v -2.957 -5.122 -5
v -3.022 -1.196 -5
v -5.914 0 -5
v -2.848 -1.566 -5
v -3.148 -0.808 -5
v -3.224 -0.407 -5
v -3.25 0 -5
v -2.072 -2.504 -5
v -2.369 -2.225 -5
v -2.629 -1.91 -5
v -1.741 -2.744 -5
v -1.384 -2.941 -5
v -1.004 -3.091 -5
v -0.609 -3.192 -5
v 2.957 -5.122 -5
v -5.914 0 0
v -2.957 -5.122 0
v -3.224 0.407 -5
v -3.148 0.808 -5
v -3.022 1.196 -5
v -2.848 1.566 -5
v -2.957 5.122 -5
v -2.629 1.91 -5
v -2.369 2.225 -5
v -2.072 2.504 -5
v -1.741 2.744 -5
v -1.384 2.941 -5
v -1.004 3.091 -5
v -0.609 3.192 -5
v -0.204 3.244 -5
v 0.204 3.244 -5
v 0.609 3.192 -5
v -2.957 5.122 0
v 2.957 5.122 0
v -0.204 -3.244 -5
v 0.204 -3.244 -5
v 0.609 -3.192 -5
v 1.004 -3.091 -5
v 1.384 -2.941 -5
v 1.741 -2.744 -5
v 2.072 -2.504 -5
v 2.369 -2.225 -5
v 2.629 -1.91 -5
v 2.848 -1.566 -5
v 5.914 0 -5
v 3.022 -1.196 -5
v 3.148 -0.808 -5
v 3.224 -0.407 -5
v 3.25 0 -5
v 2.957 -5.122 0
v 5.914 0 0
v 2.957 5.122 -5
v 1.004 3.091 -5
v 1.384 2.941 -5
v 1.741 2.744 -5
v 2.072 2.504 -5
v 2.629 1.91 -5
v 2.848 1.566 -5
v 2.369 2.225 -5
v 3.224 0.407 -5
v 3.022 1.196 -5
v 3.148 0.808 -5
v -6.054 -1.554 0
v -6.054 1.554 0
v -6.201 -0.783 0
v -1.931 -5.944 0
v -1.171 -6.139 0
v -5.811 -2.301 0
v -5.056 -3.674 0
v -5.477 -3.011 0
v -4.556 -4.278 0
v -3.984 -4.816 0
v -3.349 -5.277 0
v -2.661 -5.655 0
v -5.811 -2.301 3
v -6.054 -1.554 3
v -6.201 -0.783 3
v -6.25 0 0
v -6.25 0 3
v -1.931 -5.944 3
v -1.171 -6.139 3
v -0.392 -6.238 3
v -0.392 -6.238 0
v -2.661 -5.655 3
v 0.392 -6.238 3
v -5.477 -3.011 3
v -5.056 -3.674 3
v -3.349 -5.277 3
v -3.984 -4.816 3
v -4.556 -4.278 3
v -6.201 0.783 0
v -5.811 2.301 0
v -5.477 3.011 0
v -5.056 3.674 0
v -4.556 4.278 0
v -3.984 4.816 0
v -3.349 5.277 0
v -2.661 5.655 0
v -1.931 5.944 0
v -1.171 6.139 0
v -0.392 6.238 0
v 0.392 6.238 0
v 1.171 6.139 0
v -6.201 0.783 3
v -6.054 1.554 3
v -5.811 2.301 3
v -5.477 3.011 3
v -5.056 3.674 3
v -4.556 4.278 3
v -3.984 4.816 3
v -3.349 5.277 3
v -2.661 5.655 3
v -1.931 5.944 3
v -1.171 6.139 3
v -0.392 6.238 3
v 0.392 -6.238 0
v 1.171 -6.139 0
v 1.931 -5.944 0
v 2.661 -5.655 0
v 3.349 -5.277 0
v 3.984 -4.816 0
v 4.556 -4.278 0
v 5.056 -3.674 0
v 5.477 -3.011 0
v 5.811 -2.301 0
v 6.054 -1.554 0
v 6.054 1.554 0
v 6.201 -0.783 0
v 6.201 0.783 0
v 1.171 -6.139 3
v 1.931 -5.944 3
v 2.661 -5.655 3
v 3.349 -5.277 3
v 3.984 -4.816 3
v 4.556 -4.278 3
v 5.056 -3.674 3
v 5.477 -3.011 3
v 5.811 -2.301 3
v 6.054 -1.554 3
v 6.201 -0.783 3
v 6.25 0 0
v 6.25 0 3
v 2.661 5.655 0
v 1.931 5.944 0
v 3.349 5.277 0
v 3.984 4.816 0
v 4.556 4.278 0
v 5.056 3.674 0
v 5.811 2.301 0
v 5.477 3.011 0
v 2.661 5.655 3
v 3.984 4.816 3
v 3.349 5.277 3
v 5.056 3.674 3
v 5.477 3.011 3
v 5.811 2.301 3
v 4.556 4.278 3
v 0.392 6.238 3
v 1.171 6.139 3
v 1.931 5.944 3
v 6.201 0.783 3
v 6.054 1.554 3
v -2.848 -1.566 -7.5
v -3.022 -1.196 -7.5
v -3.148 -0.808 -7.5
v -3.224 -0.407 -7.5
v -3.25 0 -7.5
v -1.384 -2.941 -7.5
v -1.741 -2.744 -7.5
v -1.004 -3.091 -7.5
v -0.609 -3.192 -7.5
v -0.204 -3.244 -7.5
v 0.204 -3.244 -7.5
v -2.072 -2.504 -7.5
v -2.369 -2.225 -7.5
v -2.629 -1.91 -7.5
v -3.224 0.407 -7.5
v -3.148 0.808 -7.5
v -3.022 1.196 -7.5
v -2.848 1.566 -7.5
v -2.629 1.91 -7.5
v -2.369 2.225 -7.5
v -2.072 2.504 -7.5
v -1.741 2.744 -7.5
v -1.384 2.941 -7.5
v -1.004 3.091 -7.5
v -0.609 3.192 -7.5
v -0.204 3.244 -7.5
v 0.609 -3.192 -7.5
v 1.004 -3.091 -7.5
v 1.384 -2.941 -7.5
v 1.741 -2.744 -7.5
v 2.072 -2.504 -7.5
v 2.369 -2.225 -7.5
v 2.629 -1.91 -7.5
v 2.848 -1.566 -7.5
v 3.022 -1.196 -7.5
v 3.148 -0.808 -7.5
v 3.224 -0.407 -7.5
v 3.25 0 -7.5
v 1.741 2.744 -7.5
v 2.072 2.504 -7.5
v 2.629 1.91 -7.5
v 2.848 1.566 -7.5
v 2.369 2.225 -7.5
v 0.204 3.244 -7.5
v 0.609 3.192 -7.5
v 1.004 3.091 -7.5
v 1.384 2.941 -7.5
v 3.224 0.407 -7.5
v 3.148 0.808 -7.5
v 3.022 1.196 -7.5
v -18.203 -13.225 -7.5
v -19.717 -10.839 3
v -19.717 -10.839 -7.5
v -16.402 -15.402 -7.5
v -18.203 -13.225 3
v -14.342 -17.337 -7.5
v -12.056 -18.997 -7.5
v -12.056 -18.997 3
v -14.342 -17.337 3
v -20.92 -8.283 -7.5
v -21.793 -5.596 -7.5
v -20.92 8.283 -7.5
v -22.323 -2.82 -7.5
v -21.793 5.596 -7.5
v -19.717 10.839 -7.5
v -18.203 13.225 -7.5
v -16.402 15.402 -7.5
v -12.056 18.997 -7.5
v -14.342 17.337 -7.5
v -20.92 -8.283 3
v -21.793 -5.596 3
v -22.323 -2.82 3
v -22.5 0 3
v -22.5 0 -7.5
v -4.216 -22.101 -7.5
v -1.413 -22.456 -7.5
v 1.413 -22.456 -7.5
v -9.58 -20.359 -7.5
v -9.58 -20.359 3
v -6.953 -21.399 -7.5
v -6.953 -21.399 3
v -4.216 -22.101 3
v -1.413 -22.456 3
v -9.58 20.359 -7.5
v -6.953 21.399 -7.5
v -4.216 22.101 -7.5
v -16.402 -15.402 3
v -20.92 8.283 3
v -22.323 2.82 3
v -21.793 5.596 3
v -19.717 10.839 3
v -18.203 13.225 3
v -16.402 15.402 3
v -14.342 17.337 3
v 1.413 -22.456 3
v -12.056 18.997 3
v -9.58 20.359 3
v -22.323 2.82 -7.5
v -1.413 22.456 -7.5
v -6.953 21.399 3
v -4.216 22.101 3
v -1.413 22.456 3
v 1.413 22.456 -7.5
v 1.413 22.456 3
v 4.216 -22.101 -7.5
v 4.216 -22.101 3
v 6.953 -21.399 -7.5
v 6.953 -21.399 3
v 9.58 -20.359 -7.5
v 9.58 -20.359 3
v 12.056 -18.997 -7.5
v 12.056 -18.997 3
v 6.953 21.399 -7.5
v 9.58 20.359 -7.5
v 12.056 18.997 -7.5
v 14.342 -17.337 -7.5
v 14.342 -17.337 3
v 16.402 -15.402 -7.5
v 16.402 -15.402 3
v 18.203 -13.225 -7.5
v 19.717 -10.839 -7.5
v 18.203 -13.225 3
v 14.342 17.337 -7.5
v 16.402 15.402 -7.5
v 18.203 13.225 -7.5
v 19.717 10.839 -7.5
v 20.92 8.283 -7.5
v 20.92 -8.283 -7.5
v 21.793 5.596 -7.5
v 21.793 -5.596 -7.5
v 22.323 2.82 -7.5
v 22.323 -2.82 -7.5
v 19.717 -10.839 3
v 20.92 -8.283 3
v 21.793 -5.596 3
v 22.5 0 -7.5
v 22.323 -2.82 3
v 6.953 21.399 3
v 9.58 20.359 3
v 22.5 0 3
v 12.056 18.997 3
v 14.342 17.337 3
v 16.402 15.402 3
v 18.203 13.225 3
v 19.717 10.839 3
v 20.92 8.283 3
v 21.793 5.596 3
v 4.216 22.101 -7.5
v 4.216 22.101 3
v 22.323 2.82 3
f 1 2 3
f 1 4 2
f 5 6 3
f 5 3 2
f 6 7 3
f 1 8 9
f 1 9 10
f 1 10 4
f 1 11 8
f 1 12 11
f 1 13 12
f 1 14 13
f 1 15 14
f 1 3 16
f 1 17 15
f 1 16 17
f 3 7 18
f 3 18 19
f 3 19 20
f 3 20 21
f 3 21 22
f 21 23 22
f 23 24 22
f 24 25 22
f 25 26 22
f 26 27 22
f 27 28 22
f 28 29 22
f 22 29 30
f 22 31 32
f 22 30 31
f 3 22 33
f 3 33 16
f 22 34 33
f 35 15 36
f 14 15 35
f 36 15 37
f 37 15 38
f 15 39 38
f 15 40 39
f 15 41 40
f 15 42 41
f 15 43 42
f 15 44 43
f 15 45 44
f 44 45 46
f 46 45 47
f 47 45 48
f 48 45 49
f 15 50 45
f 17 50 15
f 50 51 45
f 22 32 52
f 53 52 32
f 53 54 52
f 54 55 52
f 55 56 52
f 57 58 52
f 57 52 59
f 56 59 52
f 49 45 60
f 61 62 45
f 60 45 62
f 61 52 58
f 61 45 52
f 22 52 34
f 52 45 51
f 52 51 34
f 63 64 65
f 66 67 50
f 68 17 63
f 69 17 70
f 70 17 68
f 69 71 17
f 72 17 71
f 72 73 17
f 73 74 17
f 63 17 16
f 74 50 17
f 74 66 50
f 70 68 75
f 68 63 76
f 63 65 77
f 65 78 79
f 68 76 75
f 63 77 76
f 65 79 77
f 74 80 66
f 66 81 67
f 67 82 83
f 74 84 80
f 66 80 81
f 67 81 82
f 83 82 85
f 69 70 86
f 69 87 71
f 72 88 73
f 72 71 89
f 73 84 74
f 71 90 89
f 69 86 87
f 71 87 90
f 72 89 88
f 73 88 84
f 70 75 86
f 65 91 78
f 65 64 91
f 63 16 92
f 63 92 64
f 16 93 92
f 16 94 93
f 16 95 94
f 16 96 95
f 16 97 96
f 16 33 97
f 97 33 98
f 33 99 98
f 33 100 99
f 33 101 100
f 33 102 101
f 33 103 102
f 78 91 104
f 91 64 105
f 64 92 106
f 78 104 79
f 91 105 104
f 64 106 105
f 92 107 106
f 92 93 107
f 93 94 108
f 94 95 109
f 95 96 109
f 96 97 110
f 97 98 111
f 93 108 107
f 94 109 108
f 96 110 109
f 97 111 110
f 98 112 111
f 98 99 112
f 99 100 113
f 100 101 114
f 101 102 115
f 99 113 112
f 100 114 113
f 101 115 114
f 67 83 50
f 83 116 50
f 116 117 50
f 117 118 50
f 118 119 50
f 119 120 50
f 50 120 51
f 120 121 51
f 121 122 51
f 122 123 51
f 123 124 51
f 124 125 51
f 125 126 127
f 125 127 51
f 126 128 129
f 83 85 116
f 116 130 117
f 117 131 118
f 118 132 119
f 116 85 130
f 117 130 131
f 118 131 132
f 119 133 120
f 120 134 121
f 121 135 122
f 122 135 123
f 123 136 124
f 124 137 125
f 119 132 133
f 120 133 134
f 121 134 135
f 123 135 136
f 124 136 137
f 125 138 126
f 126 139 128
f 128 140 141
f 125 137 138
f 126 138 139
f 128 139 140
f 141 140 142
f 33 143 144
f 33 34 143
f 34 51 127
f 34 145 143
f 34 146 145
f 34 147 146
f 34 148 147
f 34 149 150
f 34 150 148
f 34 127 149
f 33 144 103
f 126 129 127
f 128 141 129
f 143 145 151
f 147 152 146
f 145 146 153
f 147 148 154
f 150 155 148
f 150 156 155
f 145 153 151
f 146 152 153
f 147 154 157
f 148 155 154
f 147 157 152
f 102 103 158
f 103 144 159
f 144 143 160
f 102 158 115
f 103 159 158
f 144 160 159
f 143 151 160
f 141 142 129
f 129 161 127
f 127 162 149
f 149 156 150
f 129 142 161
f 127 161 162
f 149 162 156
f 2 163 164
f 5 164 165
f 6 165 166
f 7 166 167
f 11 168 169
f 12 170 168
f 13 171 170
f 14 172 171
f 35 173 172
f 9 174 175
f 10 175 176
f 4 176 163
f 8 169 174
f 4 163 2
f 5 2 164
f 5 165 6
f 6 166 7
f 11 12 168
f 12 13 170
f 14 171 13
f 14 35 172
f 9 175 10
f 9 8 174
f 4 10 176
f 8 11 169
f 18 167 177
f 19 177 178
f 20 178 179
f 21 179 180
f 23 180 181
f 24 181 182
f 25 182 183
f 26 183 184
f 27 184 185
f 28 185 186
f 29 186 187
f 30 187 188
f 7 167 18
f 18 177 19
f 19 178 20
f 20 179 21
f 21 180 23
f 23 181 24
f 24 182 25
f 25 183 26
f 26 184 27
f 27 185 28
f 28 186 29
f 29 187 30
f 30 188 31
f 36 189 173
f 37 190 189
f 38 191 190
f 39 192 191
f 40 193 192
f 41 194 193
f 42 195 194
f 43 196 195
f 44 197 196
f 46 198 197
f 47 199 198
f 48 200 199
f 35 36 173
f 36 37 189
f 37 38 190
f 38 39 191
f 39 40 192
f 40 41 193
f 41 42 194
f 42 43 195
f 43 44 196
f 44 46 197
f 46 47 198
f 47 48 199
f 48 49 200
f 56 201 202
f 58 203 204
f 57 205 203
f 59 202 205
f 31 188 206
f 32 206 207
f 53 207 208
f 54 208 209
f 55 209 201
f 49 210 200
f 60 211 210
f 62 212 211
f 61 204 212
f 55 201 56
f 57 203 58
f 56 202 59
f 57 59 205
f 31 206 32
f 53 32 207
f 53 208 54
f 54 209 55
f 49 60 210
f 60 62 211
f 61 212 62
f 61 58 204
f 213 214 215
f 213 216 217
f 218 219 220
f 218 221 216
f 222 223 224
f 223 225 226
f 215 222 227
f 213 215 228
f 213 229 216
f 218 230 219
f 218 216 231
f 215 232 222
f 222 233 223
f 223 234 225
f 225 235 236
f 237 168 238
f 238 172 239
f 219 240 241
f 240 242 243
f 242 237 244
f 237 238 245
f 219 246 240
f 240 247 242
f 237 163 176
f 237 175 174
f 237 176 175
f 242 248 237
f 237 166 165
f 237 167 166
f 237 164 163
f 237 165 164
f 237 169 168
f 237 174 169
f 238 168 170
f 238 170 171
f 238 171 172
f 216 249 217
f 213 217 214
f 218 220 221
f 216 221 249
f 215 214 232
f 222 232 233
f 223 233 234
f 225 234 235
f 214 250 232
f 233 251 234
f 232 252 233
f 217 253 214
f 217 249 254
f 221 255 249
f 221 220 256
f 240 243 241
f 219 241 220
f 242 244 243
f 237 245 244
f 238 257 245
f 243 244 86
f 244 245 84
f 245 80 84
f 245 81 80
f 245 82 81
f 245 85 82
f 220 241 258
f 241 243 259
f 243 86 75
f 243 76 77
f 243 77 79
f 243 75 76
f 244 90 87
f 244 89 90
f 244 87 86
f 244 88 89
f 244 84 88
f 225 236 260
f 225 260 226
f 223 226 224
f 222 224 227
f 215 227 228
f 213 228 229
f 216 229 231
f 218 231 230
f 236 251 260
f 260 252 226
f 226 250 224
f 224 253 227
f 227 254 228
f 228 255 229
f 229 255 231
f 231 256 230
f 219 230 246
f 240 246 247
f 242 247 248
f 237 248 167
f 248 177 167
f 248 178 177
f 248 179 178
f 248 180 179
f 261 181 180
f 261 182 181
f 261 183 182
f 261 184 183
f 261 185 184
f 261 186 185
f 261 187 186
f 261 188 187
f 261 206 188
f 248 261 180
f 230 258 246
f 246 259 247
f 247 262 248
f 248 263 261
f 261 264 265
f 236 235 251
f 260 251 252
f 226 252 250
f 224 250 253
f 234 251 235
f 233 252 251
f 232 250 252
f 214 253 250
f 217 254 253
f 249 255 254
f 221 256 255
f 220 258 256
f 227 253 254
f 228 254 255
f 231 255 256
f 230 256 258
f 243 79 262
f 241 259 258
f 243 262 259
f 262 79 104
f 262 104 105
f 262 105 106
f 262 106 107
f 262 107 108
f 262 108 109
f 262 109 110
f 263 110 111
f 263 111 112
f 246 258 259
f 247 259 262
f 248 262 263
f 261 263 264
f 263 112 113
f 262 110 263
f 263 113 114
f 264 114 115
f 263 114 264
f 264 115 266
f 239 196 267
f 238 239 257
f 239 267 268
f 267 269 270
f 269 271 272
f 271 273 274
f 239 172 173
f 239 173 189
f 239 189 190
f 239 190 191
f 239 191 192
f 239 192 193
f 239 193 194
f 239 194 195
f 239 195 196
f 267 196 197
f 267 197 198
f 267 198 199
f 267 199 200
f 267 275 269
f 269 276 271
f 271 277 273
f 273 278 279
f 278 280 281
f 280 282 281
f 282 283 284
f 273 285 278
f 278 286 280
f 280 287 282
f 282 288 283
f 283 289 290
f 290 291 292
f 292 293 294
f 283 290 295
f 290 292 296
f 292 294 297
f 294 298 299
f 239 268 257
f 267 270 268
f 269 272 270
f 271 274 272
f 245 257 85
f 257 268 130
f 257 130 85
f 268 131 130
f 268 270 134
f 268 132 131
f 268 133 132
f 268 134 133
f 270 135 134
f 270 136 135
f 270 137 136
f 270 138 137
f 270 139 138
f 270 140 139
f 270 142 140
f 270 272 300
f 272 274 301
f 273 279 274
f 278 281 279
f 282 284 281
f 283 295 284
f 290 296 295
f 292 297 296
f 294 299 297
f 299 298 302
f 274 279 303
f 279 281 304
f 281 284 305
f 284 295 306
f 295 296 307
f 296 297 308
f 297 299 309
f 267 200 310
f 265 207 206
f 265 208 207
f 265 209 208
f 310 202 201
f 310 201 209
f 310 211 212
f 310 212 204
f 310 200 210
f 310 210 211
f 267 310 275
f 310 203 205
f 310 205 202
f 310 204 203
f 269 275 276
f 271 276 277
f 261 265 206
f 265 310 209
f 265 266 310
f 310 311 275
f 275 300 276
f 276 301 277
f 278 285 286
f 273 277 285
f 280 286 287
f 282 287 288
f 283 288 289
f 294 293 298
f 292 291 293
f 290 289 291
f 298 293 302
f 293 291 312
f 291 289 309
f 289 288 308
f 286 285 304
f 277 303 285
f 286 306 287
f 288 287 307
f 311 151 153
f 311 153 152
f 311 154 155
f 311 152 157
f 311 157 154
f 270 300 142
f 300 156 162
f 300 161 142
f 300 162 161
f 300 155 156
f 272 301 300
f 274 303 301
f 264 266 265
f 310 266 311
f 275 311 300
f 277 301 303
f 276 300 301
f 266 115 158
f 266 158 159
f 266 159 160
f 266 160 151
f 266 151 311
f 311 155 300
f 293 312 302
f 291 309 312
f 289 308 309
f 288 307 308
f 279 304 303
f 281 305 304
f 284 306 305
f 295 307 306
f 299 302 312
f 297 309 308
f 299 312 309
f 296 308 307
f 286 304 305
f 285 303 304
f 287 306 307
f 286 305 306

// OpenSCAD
$fn = 50;

difference() {
	union() {
		translate(v = [0, 0, -7.5]) {
			cylinder(h = 10.5, r = 22.5);
		}
	}
	union() {
		translate(v = [0, 0, 0]) {
			rotate(a = [0, 0, 0]) {
				difference() {
					union() {
						translate(v = [0, 0, -5]) {
							linear_extrude(height = 5) {
								polygon(points = [[5.914249999999999, 0.0], [2.957125, 5.1218907443321156], [-2.9571249999999982, 5.1218907443321156], [-5.914249999999999, 7.242867331857232e-16], [-2.9571250000000022, -5.121890744332115], [2.9571249999999956, -5.121890744332118]]);
							}
						}
					}
					union();
				}
			}
		}
		#cylinder(h = 3, r = 6.25);
		#translate(v = [0, 0, -100.0]) {
			cylinder(h = 200, r = 3.25);
		}
	}
}
